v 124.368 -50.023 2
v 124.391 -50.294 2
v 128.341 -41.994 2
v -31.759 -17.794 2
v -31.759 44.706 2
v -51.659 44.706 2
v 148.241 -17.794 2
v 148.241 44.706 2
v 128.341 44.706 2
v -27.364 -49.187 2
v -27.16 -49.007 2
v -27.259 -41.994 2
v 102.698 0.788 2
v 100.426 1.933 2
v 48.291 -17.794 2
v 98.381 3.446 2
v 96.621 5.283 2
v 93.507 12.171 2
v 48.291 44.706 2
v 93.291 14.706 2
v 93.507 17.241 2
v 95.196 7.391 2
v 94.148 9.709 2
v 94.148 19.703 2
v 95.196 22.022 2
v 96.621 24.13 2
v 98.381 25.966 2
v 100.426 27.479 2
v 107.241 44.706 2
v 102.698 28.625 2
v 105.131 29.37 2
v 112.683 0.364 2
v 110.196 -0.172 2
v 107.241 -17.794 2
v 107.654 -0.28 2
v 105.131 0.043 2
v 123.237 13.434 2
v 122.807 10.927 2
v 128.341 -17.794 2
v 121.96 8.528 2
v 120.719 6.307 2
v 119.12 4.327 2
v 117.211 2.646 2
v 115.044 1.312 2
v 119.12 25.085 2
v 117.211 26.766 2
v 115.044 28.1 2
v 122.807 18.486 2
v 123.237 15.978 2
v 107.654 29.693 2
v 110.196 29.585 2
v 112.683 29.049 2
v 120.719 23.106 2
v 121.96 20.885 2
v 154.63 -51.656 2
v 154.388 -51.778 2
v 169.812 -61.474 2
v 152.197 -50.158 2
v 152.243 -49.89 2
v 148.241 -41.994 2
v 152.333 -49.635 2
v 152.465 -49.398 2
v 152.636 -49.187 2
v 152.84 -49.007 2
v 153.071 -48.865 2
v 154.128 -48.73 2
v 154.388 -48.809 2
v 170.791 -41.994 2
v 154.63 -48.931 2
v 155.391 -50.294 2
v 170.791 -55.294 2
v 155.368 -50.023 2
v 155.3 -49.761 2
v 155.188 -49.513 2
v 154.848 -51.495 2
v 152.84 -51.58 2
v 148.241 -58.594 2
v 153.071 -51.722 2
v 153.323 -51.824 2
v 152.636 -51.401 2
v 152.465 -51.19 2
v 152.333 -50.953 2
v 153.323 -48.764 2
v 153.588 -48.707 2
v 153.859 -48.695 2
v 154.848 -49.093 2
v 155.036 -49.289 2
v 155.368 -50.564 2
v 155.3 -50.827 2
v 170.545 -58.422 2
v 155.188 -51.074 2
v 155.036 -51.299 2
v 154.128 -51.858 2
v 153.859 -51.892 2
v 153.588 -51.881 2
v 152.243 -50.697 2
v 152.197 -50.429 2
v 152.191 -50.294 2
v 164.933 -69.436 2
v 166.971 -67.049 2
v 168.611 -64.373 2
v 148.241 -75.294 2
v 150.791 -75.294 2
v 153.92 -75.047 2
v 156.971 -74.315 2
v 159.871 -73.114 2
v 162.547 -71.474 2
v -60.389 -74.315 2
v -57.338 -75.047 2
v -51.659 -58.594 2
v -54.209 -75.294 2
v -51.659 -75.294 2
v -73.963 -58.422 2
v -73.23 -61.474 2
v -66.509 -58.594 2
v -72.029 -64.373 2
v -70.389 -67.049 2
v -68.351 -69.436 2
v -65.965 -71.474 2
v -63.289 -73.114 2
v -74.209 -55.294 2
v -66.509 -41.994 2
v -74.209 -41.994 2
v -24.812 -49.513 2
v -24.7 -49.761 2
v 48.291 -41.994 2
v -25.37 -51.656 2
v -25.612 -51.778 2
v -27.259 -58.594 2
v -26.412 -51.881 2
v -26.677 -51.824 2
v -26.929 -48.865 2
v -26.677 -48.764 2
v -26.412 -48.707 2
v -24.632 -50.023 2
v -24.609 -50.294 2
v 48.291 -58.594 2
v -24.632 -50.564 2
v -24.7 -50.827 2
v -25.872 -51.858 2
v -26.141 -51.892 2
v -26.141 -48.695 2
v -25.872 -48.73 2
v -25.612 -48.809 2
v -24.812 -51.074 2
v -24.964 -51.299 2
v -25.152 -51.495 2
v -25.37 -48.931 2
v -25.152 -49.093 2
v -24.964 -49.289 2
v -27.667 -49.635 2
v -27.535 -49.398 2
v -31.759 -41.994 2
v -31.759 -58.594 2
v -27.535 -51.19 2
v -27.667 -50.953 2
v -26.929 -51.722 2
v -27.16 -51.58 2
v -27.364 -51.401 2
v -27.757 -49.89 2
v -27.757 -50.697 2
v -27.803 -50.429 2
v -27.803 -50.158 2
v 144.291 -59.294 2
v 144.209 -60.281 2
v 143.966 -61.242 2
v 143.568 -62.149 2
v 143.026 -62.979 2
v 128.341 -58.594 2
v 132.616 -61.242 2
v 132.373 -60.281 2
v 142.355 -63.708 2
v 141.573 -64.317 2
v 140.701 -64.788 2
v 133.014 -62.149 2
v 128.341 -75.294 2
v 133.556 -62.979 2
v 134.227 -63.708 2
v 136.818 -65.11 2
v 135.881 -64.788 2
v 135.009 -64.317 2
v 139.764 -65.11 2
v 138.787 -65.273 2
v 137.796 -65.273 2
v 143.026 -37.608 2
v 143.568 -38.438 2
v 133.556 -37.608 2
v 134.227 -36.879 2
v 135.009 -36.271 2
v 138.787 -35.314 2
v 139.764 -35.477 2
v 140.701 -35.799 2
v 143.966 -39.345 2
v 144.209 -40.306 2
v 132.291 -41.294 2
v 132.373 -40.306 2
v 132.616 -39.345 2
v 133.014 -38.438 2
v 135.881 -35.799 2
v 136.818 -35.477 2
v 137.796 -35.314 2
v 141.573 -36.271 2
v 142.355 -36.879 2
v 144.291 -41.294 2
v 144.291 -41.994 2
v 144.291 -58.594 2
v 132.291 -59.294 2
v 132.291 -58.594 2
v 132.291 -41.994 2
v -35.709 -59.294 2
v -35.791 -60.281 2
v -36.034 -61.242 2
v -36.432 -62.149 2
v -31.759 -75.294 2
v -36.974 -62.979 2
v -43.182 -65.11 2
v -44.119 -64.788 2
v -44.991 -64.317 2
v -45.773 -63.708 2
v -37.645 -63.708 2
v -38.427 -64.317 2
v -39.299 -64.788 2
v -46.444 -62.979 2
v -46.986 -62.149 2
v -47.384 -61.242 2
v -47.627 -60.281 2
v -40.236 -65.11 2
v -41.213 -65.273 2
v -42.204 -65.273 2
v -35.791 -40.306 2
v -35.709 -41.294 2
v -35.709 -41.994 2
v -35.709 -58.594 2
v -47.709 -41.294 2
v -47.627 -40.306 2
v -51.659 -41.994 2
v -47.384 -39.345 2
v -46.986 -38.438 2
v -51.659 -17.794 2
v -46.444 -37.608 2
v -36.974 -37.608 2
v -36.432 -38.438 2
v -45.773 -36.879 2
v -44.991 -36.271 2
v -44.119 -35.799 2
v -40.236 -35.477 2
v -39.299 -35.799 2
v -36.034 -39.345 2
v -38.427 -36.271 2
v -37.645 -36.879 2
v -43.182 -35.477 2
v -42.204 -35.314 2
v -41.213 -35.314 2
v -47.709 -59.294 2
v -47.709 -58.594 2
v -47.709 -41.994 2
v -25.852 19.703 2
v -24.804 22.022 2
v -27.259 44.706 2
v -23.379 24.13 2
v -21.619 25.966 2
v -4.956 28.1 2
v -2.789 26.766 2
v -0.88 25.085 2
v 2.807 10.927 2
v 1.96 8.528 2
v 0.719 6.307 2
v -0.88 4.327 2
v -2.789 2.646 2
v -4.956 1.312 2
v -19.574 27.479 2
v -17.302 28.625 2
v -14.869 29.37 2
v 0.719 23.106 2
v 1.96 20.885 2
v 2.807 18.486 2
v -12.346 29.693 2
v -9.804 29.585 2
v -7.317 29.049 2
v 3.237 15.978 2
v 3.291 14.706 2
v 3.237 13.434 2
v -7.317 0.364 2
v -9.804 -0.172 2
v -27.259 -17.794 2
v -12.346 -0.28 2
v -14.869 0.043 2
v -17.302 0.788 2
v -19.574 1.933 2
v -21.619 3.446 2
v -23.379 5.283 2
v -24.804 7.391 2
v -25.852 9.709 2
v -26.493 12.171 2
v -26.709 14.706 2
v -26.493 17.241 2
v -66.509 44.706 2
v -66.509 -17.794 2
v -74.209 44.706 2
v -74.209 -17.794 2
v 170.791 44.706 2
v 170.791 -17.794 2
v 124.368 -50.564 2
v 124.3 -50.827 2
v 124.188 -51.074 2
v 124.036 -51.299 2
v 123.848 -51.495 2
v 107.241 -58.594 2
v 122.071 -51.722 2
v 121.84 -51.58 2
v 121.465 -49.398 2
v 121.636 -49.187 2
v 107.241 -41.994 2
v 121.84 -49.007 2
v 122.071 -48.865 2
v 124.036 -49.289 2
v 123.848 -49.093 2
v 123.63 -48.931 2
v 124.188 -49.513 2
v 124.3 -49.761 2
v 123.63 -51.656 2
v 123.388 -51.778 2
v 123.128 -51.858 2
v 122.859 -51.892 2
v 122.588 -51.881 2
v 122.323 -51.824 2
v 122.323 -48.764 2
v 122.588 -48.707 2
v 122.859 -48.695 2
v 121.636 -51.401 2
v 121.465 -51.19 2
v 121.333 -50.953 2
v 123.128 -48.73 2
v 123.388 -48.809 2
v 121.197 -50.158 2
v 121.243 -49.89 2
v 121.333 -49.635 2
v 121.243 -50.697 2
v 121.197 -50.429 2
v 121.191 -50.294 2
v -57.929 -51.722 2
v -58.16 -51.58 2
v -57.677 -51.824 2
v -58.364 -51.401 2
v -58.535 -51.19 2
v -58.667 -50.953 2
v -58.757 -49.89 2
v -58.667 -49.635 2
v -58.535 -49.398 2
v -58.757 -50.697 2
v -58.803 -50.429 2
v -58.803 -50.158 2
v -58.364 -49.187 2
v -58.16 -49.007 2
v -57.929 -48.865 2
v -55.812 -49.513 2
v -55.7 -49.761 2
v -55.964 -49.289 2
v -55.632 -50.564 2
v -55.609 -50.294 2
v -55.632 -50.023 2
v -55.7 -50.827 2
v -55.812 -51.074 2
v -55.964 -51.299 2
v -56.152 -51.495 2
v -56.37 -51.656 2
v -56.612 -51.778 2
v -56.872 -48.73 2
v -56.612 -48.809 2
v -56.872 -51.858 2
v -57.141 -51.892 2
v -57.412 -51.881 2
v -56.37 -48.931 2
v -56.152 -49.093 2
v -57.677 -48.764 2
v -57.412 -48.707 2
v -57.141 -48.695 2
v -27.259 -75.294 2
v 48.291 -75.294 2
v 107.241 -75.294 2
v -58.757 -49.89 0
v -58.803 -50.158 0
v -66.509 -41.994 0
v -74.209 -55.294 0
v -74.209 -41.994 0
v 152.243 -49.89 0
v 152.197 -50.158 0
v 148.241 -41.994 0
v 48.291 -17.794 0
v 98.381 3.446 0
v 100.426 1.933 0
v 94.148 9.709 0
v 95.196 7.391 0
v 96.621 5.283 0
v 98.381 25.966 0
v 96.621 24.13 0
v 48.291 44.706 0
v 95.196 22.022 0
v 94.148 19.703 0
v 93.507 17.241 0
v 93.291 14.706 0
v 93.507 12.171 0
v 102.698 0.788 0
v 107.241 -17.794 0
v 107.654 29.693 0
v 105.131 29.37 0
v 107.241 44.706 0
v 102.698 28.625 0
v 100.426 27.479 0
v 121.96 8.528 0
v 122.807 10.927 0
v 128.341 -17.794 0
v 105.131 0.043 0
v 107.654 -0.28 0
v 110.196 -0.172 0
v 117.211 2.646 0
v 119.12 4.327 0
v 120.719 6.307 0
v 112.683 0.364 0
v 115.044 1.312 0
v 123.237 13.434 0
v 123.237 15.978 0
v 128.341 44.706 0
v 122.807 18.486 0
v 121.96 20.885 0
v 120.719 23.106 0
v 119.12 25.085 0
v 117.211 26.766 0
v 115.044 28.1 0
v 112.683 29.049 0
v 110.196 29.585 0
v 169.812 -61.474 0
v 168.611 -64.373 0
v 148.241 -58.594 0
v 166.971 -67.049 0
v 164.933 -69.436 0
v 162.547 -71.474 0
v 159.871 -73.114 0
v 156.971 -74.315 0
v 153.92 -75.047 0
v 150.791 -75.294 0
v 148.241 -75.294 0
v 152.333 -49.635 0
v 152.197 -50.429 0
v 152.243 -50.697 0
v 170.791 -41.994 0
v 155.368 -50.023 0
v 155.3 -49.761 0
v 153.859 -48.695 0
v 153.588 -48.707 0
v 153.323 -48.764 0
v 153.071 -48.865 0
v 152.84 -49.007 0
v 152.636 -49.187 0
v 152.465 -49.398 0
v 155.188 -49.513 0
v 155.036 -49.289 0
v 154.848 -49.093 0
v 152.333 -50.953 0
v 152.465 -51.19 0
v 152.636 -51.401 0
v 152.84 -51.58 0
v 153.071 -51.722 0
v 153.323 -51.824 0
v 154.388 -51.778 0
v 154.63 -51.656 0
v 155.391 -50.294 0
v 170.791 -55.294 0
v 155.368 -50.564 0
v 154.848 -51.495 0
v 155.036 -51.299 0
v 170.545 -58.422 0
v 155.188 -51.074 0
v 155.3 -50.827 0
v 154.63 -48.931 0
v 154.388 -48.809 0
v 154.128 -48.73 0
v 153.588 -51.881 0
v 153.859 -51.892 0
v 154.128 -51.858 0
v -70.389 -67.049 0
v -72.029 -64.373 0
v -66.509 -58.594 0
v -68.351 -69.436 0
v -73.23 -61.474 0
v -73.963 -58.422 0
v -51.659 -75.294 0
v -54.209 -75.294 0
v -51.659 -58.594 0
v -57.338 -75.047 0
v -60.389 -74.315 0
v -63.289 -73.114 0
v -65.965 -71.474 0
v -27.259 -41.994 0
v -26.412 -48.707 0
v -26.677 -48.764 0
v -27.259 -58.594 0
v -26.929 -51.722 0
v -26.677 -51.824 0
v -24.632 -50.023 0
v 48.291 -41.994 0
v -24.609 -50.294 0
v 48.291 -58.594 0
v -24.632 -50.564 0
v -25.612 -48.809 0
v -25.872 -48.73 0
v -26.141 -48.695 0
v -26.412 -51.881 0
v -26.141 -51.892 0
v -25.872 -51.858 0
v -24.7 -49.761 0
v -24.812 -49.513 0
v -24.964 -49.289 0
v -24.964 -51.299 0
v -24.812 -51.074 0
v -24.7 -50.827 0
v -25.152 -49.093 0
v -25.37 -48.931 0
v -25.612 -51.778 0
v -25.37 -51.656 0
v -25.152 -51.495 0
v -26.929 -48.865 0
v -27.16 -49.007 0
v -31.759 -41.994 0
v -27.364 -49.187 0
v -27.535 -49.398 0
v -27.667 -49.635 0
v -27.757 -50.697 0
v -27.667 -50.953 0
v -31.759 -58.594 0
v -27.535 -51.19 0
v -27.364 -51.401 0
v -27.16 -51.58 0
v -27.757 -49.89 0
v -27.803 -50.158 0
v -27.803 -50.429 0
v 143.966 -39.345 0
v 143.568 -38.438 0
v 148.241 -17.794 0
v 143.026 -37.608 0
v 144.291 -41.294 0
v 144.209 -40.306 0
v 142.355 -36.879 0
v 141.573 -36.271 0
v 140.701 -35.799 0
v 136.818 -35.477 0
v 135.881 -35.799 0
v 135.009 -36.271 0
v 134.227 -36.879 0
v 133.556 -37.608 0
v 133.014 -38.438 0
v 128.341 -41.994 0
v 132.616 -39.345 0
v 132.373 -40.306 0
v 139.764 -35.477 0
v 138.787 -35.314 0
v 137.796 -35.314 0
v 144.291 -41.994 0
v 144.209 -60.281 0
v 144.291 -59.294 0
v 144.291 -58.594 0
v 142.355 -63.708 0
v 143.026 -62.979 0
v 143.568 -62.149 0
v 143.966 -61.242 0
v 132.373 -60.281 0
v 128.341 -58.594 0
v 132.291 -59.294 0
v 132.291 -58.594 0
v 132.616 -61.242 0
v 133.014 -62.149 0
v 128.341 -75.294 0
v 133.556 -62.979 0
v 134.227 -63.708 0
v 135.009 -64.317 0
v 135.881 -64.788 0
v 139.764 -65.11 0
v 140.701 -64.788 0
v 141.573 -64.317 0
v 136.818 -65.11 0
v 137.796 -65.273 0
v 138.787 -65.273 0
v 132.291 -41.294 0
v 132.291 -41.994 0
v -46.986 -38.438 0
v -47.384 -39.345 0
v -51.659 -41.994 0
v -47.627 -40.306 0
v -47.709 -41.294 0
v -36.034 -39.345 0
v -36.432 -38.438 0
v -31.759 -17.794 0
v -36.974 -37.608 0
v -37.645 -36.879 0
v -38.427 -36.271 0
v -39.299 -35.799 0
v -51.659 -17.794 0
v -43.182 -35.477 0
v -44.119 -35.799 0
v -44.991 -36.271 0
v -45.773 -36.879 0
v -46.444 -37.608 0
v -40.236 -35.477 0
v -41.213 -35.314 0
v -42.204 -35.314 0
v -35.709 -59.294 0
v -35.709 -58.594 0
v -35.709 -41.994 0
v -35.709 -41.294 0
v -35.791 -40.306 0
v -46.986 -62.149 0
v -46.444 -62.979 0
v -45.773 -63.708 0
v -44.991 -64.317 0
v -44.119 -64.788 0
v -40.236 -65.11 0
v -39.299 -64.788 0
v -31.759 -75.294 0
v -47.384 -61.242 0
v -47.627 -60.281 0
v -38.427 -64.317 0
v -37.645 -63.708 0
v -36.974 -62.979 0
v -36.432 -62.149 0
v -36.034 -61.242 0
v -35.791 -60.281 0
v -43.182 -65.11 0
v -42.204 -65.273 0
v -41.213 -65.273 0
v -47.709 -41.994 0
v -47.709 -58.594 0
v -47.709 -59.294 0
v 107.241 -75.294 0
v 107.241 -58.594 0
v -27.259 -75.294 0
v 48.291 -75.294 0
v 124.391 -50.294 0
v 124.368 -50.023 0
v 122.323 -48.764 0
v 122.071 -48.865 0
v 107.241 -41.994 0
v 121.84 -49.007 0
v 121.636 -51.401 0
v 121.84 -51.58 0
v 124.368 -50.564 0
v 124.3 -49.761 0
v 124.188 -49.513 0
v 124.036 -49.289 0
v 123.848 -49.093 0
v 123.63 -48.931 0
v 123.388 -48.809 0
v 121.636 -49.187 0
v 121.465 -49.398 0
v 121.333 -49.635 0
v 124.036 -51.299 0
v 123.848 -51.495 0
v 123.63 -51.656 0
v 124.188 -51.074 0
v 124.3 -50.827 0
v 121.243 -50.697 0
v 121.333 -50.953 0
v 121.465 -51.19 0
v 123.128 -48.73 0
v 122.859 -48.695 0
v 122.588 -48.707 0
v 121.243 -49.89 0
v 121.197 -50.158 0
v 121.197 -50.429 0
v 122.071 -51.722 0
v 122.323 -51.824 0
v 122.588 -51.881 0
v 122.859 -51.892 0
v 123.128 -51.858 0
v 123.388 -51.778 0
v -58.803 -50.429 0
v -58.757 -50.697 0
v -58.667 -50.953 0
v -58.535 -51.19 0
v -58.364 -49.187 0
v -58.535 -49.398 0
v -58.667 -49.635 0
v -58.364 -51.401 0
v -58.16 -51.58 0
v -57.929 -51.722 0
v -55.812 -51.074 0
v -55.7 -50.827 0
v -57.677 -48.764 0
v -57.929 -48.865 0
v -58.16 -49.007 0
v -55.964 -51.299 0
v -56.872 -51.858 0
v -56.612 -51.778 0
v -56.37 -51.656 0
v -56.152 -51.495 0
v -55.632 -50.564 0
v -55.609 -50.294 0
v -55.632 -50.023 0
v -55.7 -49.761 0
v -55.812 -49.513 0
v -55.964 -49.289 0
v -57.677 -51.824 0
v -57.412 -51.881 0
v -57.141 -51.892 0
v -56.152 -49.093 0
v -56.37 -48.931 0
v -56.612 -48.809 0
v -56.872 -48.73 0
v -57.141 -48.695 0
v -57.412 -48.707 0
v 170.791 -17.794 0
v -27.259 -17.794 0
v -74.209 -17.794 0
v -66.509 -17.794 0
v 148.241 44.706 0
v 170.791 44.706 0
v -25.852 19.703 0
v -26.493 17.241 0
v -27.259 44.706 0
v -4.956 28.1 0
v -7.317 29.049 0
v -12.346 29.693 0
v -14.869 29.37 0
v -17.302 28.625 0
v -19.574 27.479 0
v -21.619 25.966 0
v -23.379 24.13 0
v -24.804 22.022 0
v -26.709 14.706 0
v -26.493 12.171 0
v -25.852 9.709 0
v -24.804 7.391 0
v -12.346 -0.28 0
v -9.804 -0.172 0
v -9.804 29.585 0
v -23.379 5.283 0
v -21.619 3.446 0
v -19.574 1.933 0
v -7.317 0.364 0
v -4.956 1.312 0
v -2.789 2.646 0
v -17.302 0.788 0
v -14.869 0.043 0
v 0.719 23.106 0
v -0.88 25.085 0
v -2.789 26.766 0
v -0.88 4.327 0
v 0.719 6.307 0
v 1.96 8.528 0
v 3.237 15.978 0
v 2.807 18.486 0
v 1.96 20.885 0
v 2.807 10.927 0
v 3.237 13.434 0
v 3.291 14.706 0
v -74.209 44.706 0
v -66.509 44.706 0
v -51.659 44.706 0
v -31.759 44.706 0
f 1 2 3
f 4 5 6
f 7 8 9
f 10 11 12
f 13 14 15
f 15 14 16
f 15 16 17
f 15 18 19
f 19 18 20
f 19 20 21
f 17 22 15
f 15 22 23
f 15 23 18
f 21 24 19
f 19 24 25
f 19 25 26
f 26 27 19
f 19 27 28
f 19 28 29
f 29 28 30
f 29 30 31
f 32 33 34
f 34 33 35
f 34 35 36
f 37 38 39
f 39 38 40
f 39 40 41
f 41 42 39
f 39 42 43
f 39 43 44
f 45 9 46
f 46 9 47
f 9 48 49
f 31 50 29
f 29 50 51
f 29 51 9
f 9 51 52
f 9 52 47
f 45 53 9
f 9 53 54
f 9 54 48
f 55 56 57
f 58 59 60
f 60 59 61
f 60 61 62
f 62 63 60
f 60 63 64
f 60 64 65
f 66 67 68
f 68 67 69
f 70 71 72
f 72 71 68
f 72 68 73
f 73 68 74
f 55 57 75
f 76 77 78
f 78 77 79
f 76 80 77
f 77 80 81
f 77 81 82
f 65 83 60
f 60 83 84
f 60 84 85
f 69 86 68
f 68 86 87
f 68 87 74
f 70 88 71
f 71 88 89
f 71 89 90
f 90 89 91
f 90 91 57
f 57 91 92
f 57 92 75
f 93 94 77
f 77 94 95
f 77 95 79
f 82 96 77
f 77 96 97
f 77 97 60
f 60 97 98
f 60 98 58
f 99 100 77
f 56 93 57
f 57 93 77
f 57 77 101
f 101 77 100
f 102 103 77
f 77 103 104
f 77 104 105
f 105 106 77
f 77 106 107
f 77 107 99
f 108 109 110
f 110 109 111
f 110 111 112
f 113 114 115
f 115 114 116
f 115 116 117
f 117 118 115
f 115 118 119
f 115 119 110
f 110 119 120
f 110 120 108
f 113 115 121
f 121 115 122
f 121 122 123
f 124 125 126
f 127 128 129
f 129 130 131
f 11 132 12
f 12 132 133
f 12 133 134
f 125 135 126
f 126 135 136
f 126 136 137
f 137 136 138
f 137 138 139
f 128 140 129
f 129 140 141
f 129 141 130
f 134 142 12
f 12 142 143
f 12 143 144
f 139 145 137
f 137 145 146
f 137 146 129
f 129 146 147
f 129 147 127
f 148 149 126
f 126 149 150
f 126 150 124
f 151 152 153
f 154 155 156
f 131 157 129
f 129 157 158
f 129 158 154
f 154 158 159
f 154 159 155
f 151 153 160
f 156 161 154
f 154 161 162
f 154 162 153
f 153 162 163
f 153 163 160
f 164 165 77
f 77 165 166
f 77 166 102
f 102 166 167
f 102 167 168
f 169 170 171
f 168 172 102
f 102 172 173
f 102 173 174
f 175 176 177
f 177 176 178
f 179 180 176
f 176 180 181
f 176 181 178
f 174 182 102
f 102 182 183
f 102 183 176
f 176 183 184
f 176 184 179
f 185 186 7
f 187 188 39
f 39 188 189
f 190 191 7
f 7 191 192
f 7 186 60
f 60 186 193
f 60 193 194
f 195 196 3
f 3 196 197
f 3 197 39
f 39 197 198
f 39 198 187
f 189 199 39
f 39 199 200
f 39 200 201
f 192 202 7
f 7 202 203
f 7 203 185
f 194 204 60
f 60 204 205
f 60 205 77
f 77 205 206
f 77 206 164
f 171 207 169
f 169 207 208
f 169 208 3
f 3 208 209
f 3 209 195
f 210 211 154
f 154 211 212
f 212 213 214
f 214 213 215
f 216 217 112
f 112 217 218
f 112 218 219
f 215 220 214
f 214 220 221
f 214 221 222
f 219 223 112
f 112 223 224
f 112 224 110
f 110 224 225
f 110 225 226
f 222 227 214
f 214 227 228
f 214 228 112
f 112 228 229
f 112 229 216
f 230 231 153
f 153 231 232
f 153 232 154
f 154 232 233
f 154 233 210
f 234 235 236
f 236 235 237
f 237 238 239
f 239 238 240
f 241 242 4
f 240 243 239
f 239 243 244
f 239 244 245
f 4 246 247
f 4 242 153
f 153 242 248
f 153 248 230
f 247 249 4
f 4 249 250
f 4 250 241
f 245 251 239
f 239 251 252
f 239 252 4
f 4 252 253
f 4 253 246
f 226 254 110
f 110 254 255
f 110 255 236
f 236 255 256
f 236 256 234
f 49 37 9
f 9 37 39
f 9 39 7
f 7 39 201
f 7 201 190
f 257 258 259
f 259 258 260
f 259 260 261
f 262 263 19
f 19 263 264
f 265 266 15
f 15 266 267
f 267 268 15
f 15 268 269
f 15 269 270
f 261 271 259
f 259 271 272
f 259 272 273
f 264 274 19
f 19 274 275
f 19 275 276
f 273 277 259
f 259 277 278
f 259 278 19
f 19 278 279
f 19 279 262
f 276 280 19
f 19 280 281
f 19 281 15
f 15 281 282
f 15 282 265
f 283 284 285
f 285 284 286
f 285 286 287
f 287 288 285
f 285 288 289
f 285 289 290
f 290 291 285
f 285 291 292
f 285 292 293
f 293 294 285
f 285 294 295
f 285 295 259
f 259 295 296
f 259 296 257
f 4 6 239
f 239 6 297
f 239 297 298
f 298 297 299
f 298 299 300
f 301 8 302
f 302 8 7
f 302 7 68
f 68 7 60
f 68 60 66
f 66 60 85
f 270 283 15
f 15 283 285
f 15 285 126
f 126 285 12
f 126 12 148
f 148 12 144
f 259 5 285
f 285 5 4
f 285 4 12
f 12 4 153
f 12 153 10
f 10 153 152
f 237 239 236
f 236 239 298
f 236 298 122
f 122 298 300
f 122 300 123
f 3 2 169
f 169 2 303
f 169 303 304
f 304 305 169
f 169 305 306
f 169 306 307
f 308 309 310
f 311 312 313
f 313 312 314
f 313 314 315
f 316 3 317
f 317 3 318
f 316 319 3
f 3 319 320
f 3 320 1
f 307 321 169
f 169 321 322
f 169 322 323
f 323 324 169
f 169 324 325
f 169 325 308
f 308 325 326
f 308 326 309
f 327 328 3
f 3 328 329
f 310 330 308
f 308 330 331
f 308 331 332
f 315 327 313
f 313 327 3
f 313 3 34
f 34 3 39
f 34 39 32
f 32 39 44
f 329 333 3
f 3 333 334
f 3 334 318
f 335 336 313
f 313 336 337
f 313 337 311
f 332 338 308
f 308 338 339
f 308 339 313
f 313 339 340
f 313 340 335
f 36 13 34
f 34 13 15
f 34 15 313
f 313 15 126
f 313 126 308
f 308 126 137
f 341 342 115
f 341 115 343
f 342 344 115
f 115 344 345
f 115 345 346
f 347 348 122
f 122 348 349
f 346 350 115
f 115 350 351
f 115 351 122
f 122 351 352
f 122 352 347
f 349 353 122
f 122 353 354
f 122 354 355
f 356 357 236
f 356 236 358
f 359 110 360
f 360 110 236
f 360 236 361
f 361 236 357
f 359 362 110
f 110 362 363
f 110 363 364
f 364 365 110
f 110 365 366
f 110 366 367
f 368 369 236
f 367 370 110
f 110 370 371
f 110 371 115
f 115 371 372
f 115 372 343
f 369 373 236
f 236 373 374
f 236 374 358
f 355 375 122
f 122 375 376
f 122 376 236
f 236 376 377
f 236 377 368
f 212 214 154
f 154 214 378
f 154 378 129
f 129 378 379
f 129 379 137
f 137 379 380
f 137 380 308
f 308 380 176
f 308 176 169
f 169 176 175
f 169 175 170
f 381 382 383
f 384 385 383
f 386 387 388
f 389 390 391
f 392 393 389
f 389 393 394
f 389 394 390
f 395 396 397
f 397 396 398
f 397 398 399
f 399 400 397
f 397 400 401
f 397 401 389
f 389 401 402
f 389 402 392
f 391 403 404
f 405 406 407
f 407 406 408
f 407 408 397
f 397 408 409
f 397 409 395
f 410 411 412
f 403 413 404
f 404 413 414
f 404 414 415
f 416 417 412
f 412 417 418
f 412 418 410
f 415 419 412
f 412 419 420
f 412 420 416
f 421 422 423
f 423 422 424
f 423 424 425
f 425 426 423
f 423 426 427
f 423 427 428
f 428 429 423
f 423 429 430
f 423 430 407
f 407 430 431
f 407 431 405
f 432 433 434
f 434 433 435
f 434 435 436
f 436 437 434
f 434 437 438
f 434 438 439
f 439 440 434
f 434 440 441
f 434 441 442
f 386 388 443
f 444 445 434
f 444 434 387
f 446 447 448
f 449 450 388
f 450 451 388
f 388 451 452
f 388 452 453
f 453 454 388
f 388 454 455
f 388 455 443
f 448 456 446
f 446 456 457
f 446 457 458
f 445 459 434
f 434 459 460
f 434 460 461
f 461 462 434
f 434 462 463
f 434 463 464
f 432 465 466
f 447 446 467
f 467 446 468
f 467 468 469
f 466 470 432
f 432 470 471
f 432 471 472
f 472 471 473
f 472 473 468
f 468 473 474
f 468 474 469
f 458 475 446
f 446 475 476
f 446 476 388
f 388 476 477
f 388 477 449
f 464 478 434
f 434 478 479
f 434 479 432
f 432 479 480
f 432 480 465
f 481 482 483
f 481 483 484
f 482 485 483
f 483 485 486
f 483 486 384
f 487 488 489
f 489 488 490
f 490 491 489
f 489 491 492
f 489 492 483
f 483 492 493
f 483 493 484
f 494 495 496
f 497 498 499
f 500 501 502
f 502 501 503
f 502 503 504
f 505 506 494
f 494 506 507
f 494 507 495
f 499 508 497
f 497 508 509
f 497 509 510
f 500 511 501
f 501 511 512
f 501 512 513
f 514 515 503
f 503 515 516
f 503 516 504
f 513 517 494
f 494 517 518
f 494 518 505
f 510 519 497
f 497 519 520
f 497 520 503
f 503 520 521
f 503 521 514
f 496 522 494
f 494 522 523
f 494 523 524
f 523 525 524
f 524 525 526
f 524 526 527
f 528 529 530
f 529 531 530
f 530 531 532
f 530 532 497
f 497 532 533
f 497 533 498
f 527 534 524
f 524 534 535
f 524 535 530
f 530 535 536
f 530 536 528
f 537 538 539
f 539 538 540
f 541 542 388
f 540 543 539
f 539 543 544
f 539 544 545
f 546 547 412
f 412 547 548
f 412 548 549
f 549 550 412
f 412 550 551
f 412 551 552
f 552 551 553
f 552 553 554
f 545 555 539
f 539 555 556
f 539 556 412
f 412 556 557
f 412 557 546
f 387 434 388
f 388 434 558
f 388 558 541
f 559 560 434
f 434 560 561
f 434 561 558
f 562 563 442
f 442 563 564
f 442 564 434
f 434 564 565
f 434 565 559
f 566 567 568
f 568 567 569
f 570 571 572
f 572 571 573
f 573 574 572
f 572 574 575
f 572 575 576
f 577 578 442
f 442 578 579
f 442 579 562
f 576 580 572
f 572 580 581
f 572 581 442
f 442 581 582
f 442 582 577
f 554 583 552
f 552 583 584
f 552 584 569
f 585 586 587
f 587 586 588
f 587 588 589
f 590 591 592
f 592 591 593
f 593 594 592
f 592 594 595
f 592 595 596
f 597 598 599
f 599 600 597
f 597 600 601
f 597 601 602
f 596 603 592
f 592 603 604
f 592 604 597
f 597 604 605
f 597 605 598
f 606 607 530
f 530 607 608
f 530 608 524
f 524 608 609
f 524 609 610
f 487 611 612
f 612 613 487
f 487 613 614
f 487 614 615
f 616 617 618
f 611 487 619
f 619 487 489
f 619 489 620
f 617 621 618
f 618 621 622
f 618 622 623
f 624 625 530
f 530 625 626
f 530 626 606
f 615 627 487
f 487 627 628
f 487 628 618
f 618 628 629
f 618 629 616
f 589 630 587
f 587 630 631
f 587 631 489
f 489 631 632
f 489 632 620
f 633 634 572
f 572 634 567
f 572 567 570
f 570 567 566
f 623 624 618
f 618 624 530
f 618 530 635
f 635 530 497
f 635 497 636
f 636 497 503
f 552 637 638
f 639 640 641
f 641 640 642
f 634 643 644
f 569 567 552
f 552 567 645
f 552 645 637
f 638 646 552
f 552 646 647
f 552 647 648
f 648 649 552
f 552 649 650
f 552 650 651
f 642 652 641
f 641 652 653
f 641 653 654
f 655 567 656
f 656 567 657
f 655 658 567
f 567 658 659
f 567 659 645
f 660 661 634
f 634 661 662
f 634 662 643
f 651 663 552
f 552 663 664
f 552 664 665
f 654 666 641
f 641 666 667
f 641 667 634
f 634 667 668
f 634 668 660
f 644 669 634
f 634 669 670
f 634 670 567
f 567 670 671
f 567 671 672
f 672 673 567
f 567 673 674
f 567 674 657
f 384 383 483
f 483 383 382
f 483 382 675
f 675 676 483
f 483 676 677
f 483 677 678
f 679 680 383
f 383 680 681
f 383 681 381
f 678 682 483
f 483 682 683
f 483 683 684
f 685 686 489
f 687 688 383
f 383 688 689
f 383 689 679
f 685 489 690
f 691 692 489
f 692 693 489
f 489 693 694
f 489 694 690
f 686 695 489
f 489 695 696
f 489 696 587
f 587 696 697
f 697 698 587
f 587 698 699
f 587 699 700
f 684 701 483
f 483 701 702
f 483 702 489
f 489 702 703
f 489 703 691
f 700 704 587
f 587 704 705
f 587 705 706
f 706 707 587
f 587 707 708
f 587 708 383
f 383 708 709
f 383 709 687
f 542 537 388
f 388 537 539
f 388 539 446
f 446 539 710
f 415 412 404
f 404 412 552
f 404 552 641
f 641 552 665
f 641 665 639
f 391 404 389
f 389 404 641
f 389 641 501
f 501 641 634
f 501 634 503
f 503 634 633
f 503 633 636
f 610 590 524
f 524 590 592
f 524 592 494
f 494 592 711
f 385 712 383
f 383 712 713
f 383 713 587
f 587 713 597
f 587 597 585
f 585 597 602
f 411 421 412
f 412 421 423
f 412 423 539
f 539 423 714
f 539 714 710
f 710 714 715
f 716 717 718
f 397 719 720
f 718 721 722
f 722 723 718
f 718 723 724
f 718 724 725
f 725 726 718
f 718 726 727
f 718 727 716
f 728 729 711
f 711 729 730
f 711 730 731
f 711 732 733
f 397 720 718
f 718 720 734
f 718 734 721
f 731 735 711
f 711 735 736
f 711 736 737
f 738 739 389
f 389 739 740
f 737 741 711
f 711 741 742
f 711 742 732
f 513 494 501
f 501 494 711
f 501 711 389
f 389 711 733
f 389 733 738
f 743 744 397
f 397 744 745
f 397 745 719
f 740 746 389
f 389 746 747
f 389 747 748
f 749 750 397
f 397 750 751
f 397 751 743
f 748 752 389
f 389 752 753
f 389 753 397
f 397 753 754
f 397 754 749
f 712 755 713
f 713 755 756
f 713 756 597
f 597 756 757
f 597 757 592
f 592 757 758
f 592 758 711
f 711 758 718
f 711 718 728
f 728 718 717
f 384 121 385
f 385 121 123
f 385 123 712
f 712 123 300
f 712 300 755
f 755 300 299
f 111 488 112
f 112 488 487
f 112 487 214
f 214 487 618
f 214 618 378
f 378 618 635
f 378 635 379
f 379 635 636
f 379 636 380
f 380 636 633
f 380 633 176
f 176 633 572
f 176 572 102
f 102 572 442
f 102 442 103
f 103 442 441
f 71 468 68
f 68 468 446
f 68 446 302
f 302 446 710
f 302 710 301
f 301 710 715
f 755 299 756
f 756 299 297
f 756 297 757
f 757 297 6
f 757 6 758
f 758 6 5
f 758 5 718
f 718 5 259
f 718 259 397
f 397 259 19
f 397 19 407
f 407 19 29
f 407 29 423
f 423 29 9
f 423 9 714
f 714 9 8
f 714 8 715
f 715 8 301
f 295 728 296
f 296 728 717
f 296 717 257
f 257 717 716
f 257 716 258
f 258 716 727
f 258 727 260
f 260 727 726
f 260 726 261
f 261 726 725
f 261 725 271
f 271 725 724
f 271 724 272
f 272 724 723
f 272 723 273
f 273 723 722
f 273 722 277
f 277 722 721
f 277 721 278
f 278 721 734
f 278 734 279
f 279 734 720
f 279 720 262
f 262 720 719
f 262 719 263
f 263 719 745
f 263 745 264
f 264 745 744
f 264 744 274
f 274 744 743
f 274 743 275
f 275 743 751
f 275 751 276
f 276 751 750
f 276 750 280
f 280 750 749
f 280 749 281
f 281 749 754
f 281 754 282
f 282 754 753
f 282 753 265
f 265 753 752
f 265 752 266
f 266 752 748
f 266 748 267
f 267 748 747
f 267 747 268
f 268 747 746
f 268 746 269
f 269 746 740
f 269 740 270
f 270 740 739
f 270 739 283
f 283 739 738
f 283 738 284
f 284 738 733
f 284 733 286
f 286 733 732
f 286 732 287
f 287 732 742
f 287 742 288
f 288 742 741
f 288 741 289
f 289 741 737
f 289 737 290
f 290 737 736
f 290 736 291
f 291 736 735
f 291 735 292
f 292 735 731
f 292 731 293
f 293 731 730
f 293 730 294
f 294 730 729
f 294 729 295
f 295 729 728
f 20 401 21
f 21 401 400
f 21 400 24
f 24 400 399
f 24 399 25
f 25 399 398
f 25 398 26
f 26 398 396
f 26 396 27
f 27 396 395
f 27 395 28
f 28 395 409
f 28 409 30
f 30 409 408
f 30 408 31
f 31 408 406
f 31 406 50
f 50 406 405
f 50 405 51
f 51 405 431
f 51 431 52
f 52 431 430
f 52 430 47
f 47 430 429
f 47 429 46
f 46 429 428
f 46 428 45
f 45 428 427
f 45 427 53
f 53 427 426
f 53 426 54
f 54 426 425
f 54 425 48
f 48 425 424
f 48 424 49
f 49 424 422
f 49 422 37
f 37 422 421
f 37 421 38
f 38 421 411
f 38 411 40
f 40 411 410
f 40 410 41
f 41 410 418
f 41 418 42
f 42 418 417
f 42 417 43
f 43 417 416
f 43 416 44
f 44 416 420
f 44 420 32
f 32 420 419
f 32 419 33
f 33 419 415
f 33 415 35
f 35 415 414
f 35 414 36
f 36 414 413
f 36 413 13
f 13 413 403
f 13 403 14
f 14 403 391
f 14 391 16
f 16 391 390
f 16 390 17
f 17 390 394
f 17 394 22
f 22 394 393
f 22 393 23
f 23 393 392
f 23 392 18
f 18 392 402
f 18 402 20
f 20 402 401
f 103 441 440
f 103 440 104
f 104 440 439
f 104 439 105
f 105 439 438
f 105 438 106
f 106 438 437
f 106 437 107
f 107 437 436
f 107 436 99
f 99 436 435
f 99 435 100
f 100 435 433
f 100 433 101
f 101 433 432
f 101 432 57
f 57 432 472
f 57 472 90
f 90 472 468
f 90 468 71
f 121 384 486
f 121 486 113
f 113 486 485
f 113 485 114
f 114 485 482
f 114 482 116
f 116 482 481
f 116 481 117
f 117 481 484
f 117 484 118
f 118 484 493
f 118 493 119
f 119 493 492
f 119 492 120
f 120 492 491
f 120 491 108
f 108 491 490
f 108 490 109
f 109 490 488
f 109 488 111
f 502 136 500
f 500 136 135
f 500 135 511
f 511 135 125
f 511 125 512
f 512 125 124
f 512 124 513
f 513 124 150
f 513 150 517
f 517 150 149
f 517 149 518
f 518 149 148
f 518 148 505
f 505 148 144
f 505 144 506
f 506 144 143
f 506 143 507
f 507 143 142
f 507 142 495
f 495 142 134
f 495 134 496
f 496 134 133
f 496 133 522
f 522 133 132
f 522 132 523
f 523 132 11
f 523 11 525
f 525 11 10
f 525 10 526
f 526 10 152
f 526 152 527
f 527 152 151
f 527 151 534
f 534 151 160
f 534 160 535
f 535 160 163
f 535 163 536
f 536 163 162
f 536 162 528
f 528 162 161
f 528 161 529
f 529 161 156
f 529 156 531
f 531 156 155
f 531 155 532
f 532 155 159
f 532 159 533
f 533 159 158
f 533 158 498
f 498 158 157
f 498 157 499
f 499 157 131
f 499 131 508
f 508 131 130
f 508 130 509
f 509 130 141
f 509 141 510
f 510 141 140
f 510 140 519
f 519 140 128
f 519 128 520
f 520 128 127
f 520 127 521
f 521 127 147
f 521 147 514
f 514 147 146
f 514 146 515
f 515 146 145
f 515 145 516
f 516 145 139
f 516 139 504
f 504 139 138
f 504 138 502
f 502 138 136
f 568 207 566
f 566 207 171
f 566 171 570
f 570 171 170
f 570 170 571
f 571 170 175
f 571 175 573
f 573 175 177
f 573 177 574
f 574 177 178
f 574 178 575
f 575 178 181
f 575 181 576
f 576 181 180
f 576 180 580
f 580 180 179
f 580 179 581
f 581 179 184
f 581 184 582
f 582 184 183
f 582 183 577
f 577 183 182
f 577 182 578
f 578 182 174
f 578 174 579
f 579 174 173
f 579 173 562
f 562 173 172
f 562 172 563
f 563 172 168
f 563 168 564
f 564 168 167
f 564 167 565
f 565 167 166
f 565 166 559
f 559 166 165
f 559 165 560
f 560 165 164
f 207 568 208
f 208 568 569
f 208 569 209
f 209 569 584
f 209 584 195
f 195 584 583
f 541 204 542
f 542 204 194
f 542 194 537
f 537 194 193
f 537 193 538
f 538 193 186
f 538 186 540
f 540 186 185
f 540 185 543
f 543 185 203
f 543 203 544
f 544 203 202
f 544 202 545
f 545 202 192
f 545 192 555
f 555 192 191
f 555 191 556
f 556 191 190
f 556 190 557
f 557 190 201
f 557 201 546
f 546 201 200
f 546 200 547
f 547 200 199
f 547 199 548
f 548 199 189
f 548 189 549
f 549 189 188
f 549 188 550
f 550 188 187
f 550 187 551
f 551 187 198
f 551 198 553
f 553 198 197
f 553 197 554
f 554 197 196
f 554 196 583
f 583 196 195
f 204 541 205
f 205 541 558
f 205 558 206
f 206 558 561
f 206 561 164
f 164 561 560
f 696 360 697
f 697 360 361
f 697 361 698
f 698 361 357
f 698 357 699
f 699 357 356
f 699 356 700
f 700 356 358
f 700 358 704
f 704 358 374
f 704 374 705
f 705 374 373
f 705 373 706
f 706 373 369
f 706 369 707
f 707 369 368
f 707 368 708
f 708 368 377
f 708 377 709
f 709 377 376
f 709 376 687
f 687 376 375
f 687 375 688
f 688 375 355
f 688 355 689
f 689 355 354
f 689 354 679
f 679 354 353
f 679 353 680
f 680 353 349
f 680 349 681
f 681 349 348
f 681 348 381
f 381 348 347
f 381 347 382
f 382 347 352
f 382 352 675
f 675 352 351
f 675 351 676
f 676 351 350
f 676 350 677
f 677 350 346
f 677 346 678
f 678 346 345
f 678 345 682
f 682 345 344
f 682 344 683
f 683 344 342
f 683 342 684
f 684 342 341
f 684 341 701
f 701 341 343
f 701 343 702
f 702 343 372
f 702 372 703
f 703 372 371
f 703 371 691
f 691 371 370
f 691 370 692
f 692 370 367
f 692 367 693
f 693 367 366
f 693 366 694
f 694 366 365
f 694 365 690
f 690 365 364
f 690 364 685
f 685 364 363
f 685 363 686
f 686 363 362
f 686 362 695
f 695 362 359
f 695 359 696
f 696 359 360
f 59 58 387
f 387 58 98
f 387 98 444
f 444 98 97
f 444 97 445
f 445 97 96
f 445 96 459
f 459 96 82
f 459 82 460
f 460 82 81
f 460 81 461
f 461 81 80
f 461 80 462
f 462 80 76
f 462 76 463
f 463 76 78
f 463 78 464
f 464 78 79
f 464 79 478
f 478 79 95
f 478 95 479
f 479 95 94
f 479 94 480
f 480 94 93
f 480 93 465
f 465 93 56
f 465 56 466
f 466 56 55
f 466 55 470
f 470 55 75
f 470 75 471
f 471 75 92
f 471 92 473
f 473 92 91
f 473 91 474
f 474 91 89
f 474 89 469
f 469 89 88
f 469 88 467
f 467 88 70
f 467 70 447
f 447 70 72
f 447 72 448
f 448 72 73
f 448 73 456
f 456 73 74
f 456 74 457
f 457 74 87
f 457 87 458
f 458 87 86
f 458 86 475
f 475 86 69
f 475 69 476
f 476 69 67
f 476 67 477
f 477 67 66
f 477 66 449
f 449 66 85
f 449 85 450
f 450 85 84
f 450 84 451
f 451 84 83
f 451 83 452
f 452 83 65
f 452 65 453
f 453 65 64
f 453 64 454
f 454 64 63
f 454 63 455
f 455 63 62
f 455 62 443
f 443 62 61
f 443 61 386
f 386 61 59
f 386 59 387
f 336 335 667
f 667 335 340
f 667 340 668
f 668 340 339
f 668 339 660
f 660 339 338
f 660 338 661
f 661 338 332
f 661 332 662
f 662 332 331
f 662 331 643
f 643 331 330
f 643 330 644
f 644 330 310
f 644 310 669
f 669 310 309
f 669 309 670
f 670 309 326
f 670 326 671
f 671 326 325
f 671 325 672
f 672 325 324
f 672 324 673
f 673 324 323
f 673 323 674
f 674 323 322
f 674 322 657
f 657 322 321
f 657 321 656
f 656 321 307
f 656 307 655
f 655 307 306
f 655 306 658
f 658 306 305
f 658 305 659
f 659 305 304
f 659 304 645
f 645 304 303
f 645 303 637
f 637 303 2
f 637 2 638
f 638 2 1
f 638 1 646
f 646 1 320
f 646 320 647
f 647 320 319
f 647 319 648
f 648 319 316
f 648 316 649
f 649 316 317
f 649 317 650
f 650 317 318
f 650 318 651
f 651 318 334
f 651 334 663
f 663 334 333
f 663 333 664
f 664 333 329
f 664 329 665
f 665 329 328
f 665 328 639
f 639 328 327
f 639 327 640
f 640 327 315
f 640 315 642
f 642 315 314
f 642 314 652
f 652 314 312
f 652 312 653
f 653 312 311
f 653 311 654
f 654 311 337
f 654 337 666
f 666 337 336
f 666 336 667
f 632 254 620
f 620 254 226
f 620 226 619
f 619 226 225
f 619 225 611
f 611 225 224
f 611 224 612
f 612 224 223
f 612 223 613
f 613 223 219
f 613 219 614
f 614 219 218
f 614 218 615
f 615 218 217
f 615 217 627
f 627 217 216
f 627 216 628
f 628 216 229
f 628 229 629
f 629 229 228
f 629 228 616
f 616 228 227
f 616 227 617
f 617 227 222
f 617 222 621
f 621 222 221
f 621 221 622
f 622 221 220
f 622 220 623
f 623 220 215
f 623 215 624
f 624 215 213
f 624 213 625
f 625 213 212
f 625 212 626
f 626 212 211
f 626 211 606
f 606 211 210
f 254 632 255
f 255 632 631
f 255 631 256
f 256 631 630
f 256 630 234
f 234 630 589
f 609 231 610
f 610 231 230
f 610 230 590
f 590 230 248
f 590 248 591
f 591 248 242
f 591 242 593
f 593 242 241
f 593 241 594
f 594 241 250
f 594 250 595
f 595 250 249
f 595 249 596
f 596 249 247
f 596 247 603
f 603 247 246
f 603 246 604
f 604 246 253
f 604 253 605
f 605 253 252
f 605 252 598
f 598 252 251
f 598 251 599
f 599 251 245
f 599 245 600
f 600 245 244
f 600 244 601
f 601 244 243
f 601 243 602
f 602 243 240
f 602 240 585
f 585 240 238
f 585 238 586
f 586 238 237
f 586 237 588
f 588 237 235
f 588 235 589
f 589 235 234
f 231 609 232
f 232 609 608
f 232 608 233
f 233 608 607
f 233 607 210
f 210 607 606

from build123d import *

# Parameters (mm, degrees)
SKETCH_1_W          = 245
SKETCH_1_H          = 120
SKETCH_1_R          = 15
EXTRUDE_1_DEPTH     = 2
FILLET_1_R          = 20
FILLET_2_R          = 20
SKETCH_3_R          = 1.6
CUT_EXTRUDE_1_DEPTH = 10


with BuildPart() as part:
    # 草图1 → 凸台-拉伸1 (new body)
    with BuildSketch(Plane.XY):
        with Locations((48.291102509, -15.293659776)):
            Rectangle(SKETCH_1_W, SKETCH_1_H)
        with Locations((-11.708897491, 14.706340224)):
            Circle(SKETCH_1_R, mode=Mode.SUBTRACT)
        with Locations((108.291102509, 14.706340224)):
            Circle(SKETCH_1_R, mode=Mode.SUBTRACT)
    extrude(amount=EXTRUDE_1_DEPTH)

    # 圆角1
    fillet_1_edges = [part.edges().sort_by_distance(p)[0] for p in [
        (170.791102509, -75.293659776, 1),
    ]]
    fillet(fillet_1_edges, radius=FILLET_1_R)

    # 圆角2
    fillet_2_edges = [part.edges().sort_by_distance(p)[0] for p in [
        (-74.208897491, -75.293659776, 1),
    ]]
    fillet(fillet_2_edges, radius=FILLET_2_R)

    # 草图3 → 切除-拉伸1 (cut)
    with BuildSketch(Plane.XY.offset(2)):
        with Locations((-26.208897491, -50.293659776)):
            Circle(SKETCH_3_R)
        with Locations((-57.208897491, -50.293659776)):
            Circle(SKETCH_3_R)
        with Locations((153.791102509, -50.293659776)):
            Circle(SKETCH_3_R)
        with Locations((122.791102509, -50.293659776)):
            Circle(SKETCH_3_R)
        with BuildLine():
            Line((-47.708897491, -59.293659776), (-47.708897491, -41.293659776))
            ThreePointArc((-47.708897491, -41.293659776), (-41.708897491, -35.293659776), (-35.708897491, -41.293659776))
            Line((-35.708897491, -41.293659776), (-35.708897491, -59.293659776))
            ThreePointArc((-35.708897491, -59.293659776), (-41.708897491, -65.293659776), (-47.708897491, -59.293659776))
        make_face()
        with BuildLine():
            Line((144.291102509, -59.293659776), (144.291102509, -41.293659776))
            ThreePointArc((144.291102509, -41.293659776), (138.291102509, -35.293659776), (132.291102509, -41.293659776))
            Line((132.291102509, -41.293659776), (132.291102509, -59.293659776))
            ThreePointArc((132.291102509, -59.293659776), (138.291102509, -65.293659776), (144.291102509, -59.293659776))
        make_face()
    extrude(amount=-CUT_EXTRUDE_1_DEPTH, mode=Mode.SUBTRACT)


solid = part.part
